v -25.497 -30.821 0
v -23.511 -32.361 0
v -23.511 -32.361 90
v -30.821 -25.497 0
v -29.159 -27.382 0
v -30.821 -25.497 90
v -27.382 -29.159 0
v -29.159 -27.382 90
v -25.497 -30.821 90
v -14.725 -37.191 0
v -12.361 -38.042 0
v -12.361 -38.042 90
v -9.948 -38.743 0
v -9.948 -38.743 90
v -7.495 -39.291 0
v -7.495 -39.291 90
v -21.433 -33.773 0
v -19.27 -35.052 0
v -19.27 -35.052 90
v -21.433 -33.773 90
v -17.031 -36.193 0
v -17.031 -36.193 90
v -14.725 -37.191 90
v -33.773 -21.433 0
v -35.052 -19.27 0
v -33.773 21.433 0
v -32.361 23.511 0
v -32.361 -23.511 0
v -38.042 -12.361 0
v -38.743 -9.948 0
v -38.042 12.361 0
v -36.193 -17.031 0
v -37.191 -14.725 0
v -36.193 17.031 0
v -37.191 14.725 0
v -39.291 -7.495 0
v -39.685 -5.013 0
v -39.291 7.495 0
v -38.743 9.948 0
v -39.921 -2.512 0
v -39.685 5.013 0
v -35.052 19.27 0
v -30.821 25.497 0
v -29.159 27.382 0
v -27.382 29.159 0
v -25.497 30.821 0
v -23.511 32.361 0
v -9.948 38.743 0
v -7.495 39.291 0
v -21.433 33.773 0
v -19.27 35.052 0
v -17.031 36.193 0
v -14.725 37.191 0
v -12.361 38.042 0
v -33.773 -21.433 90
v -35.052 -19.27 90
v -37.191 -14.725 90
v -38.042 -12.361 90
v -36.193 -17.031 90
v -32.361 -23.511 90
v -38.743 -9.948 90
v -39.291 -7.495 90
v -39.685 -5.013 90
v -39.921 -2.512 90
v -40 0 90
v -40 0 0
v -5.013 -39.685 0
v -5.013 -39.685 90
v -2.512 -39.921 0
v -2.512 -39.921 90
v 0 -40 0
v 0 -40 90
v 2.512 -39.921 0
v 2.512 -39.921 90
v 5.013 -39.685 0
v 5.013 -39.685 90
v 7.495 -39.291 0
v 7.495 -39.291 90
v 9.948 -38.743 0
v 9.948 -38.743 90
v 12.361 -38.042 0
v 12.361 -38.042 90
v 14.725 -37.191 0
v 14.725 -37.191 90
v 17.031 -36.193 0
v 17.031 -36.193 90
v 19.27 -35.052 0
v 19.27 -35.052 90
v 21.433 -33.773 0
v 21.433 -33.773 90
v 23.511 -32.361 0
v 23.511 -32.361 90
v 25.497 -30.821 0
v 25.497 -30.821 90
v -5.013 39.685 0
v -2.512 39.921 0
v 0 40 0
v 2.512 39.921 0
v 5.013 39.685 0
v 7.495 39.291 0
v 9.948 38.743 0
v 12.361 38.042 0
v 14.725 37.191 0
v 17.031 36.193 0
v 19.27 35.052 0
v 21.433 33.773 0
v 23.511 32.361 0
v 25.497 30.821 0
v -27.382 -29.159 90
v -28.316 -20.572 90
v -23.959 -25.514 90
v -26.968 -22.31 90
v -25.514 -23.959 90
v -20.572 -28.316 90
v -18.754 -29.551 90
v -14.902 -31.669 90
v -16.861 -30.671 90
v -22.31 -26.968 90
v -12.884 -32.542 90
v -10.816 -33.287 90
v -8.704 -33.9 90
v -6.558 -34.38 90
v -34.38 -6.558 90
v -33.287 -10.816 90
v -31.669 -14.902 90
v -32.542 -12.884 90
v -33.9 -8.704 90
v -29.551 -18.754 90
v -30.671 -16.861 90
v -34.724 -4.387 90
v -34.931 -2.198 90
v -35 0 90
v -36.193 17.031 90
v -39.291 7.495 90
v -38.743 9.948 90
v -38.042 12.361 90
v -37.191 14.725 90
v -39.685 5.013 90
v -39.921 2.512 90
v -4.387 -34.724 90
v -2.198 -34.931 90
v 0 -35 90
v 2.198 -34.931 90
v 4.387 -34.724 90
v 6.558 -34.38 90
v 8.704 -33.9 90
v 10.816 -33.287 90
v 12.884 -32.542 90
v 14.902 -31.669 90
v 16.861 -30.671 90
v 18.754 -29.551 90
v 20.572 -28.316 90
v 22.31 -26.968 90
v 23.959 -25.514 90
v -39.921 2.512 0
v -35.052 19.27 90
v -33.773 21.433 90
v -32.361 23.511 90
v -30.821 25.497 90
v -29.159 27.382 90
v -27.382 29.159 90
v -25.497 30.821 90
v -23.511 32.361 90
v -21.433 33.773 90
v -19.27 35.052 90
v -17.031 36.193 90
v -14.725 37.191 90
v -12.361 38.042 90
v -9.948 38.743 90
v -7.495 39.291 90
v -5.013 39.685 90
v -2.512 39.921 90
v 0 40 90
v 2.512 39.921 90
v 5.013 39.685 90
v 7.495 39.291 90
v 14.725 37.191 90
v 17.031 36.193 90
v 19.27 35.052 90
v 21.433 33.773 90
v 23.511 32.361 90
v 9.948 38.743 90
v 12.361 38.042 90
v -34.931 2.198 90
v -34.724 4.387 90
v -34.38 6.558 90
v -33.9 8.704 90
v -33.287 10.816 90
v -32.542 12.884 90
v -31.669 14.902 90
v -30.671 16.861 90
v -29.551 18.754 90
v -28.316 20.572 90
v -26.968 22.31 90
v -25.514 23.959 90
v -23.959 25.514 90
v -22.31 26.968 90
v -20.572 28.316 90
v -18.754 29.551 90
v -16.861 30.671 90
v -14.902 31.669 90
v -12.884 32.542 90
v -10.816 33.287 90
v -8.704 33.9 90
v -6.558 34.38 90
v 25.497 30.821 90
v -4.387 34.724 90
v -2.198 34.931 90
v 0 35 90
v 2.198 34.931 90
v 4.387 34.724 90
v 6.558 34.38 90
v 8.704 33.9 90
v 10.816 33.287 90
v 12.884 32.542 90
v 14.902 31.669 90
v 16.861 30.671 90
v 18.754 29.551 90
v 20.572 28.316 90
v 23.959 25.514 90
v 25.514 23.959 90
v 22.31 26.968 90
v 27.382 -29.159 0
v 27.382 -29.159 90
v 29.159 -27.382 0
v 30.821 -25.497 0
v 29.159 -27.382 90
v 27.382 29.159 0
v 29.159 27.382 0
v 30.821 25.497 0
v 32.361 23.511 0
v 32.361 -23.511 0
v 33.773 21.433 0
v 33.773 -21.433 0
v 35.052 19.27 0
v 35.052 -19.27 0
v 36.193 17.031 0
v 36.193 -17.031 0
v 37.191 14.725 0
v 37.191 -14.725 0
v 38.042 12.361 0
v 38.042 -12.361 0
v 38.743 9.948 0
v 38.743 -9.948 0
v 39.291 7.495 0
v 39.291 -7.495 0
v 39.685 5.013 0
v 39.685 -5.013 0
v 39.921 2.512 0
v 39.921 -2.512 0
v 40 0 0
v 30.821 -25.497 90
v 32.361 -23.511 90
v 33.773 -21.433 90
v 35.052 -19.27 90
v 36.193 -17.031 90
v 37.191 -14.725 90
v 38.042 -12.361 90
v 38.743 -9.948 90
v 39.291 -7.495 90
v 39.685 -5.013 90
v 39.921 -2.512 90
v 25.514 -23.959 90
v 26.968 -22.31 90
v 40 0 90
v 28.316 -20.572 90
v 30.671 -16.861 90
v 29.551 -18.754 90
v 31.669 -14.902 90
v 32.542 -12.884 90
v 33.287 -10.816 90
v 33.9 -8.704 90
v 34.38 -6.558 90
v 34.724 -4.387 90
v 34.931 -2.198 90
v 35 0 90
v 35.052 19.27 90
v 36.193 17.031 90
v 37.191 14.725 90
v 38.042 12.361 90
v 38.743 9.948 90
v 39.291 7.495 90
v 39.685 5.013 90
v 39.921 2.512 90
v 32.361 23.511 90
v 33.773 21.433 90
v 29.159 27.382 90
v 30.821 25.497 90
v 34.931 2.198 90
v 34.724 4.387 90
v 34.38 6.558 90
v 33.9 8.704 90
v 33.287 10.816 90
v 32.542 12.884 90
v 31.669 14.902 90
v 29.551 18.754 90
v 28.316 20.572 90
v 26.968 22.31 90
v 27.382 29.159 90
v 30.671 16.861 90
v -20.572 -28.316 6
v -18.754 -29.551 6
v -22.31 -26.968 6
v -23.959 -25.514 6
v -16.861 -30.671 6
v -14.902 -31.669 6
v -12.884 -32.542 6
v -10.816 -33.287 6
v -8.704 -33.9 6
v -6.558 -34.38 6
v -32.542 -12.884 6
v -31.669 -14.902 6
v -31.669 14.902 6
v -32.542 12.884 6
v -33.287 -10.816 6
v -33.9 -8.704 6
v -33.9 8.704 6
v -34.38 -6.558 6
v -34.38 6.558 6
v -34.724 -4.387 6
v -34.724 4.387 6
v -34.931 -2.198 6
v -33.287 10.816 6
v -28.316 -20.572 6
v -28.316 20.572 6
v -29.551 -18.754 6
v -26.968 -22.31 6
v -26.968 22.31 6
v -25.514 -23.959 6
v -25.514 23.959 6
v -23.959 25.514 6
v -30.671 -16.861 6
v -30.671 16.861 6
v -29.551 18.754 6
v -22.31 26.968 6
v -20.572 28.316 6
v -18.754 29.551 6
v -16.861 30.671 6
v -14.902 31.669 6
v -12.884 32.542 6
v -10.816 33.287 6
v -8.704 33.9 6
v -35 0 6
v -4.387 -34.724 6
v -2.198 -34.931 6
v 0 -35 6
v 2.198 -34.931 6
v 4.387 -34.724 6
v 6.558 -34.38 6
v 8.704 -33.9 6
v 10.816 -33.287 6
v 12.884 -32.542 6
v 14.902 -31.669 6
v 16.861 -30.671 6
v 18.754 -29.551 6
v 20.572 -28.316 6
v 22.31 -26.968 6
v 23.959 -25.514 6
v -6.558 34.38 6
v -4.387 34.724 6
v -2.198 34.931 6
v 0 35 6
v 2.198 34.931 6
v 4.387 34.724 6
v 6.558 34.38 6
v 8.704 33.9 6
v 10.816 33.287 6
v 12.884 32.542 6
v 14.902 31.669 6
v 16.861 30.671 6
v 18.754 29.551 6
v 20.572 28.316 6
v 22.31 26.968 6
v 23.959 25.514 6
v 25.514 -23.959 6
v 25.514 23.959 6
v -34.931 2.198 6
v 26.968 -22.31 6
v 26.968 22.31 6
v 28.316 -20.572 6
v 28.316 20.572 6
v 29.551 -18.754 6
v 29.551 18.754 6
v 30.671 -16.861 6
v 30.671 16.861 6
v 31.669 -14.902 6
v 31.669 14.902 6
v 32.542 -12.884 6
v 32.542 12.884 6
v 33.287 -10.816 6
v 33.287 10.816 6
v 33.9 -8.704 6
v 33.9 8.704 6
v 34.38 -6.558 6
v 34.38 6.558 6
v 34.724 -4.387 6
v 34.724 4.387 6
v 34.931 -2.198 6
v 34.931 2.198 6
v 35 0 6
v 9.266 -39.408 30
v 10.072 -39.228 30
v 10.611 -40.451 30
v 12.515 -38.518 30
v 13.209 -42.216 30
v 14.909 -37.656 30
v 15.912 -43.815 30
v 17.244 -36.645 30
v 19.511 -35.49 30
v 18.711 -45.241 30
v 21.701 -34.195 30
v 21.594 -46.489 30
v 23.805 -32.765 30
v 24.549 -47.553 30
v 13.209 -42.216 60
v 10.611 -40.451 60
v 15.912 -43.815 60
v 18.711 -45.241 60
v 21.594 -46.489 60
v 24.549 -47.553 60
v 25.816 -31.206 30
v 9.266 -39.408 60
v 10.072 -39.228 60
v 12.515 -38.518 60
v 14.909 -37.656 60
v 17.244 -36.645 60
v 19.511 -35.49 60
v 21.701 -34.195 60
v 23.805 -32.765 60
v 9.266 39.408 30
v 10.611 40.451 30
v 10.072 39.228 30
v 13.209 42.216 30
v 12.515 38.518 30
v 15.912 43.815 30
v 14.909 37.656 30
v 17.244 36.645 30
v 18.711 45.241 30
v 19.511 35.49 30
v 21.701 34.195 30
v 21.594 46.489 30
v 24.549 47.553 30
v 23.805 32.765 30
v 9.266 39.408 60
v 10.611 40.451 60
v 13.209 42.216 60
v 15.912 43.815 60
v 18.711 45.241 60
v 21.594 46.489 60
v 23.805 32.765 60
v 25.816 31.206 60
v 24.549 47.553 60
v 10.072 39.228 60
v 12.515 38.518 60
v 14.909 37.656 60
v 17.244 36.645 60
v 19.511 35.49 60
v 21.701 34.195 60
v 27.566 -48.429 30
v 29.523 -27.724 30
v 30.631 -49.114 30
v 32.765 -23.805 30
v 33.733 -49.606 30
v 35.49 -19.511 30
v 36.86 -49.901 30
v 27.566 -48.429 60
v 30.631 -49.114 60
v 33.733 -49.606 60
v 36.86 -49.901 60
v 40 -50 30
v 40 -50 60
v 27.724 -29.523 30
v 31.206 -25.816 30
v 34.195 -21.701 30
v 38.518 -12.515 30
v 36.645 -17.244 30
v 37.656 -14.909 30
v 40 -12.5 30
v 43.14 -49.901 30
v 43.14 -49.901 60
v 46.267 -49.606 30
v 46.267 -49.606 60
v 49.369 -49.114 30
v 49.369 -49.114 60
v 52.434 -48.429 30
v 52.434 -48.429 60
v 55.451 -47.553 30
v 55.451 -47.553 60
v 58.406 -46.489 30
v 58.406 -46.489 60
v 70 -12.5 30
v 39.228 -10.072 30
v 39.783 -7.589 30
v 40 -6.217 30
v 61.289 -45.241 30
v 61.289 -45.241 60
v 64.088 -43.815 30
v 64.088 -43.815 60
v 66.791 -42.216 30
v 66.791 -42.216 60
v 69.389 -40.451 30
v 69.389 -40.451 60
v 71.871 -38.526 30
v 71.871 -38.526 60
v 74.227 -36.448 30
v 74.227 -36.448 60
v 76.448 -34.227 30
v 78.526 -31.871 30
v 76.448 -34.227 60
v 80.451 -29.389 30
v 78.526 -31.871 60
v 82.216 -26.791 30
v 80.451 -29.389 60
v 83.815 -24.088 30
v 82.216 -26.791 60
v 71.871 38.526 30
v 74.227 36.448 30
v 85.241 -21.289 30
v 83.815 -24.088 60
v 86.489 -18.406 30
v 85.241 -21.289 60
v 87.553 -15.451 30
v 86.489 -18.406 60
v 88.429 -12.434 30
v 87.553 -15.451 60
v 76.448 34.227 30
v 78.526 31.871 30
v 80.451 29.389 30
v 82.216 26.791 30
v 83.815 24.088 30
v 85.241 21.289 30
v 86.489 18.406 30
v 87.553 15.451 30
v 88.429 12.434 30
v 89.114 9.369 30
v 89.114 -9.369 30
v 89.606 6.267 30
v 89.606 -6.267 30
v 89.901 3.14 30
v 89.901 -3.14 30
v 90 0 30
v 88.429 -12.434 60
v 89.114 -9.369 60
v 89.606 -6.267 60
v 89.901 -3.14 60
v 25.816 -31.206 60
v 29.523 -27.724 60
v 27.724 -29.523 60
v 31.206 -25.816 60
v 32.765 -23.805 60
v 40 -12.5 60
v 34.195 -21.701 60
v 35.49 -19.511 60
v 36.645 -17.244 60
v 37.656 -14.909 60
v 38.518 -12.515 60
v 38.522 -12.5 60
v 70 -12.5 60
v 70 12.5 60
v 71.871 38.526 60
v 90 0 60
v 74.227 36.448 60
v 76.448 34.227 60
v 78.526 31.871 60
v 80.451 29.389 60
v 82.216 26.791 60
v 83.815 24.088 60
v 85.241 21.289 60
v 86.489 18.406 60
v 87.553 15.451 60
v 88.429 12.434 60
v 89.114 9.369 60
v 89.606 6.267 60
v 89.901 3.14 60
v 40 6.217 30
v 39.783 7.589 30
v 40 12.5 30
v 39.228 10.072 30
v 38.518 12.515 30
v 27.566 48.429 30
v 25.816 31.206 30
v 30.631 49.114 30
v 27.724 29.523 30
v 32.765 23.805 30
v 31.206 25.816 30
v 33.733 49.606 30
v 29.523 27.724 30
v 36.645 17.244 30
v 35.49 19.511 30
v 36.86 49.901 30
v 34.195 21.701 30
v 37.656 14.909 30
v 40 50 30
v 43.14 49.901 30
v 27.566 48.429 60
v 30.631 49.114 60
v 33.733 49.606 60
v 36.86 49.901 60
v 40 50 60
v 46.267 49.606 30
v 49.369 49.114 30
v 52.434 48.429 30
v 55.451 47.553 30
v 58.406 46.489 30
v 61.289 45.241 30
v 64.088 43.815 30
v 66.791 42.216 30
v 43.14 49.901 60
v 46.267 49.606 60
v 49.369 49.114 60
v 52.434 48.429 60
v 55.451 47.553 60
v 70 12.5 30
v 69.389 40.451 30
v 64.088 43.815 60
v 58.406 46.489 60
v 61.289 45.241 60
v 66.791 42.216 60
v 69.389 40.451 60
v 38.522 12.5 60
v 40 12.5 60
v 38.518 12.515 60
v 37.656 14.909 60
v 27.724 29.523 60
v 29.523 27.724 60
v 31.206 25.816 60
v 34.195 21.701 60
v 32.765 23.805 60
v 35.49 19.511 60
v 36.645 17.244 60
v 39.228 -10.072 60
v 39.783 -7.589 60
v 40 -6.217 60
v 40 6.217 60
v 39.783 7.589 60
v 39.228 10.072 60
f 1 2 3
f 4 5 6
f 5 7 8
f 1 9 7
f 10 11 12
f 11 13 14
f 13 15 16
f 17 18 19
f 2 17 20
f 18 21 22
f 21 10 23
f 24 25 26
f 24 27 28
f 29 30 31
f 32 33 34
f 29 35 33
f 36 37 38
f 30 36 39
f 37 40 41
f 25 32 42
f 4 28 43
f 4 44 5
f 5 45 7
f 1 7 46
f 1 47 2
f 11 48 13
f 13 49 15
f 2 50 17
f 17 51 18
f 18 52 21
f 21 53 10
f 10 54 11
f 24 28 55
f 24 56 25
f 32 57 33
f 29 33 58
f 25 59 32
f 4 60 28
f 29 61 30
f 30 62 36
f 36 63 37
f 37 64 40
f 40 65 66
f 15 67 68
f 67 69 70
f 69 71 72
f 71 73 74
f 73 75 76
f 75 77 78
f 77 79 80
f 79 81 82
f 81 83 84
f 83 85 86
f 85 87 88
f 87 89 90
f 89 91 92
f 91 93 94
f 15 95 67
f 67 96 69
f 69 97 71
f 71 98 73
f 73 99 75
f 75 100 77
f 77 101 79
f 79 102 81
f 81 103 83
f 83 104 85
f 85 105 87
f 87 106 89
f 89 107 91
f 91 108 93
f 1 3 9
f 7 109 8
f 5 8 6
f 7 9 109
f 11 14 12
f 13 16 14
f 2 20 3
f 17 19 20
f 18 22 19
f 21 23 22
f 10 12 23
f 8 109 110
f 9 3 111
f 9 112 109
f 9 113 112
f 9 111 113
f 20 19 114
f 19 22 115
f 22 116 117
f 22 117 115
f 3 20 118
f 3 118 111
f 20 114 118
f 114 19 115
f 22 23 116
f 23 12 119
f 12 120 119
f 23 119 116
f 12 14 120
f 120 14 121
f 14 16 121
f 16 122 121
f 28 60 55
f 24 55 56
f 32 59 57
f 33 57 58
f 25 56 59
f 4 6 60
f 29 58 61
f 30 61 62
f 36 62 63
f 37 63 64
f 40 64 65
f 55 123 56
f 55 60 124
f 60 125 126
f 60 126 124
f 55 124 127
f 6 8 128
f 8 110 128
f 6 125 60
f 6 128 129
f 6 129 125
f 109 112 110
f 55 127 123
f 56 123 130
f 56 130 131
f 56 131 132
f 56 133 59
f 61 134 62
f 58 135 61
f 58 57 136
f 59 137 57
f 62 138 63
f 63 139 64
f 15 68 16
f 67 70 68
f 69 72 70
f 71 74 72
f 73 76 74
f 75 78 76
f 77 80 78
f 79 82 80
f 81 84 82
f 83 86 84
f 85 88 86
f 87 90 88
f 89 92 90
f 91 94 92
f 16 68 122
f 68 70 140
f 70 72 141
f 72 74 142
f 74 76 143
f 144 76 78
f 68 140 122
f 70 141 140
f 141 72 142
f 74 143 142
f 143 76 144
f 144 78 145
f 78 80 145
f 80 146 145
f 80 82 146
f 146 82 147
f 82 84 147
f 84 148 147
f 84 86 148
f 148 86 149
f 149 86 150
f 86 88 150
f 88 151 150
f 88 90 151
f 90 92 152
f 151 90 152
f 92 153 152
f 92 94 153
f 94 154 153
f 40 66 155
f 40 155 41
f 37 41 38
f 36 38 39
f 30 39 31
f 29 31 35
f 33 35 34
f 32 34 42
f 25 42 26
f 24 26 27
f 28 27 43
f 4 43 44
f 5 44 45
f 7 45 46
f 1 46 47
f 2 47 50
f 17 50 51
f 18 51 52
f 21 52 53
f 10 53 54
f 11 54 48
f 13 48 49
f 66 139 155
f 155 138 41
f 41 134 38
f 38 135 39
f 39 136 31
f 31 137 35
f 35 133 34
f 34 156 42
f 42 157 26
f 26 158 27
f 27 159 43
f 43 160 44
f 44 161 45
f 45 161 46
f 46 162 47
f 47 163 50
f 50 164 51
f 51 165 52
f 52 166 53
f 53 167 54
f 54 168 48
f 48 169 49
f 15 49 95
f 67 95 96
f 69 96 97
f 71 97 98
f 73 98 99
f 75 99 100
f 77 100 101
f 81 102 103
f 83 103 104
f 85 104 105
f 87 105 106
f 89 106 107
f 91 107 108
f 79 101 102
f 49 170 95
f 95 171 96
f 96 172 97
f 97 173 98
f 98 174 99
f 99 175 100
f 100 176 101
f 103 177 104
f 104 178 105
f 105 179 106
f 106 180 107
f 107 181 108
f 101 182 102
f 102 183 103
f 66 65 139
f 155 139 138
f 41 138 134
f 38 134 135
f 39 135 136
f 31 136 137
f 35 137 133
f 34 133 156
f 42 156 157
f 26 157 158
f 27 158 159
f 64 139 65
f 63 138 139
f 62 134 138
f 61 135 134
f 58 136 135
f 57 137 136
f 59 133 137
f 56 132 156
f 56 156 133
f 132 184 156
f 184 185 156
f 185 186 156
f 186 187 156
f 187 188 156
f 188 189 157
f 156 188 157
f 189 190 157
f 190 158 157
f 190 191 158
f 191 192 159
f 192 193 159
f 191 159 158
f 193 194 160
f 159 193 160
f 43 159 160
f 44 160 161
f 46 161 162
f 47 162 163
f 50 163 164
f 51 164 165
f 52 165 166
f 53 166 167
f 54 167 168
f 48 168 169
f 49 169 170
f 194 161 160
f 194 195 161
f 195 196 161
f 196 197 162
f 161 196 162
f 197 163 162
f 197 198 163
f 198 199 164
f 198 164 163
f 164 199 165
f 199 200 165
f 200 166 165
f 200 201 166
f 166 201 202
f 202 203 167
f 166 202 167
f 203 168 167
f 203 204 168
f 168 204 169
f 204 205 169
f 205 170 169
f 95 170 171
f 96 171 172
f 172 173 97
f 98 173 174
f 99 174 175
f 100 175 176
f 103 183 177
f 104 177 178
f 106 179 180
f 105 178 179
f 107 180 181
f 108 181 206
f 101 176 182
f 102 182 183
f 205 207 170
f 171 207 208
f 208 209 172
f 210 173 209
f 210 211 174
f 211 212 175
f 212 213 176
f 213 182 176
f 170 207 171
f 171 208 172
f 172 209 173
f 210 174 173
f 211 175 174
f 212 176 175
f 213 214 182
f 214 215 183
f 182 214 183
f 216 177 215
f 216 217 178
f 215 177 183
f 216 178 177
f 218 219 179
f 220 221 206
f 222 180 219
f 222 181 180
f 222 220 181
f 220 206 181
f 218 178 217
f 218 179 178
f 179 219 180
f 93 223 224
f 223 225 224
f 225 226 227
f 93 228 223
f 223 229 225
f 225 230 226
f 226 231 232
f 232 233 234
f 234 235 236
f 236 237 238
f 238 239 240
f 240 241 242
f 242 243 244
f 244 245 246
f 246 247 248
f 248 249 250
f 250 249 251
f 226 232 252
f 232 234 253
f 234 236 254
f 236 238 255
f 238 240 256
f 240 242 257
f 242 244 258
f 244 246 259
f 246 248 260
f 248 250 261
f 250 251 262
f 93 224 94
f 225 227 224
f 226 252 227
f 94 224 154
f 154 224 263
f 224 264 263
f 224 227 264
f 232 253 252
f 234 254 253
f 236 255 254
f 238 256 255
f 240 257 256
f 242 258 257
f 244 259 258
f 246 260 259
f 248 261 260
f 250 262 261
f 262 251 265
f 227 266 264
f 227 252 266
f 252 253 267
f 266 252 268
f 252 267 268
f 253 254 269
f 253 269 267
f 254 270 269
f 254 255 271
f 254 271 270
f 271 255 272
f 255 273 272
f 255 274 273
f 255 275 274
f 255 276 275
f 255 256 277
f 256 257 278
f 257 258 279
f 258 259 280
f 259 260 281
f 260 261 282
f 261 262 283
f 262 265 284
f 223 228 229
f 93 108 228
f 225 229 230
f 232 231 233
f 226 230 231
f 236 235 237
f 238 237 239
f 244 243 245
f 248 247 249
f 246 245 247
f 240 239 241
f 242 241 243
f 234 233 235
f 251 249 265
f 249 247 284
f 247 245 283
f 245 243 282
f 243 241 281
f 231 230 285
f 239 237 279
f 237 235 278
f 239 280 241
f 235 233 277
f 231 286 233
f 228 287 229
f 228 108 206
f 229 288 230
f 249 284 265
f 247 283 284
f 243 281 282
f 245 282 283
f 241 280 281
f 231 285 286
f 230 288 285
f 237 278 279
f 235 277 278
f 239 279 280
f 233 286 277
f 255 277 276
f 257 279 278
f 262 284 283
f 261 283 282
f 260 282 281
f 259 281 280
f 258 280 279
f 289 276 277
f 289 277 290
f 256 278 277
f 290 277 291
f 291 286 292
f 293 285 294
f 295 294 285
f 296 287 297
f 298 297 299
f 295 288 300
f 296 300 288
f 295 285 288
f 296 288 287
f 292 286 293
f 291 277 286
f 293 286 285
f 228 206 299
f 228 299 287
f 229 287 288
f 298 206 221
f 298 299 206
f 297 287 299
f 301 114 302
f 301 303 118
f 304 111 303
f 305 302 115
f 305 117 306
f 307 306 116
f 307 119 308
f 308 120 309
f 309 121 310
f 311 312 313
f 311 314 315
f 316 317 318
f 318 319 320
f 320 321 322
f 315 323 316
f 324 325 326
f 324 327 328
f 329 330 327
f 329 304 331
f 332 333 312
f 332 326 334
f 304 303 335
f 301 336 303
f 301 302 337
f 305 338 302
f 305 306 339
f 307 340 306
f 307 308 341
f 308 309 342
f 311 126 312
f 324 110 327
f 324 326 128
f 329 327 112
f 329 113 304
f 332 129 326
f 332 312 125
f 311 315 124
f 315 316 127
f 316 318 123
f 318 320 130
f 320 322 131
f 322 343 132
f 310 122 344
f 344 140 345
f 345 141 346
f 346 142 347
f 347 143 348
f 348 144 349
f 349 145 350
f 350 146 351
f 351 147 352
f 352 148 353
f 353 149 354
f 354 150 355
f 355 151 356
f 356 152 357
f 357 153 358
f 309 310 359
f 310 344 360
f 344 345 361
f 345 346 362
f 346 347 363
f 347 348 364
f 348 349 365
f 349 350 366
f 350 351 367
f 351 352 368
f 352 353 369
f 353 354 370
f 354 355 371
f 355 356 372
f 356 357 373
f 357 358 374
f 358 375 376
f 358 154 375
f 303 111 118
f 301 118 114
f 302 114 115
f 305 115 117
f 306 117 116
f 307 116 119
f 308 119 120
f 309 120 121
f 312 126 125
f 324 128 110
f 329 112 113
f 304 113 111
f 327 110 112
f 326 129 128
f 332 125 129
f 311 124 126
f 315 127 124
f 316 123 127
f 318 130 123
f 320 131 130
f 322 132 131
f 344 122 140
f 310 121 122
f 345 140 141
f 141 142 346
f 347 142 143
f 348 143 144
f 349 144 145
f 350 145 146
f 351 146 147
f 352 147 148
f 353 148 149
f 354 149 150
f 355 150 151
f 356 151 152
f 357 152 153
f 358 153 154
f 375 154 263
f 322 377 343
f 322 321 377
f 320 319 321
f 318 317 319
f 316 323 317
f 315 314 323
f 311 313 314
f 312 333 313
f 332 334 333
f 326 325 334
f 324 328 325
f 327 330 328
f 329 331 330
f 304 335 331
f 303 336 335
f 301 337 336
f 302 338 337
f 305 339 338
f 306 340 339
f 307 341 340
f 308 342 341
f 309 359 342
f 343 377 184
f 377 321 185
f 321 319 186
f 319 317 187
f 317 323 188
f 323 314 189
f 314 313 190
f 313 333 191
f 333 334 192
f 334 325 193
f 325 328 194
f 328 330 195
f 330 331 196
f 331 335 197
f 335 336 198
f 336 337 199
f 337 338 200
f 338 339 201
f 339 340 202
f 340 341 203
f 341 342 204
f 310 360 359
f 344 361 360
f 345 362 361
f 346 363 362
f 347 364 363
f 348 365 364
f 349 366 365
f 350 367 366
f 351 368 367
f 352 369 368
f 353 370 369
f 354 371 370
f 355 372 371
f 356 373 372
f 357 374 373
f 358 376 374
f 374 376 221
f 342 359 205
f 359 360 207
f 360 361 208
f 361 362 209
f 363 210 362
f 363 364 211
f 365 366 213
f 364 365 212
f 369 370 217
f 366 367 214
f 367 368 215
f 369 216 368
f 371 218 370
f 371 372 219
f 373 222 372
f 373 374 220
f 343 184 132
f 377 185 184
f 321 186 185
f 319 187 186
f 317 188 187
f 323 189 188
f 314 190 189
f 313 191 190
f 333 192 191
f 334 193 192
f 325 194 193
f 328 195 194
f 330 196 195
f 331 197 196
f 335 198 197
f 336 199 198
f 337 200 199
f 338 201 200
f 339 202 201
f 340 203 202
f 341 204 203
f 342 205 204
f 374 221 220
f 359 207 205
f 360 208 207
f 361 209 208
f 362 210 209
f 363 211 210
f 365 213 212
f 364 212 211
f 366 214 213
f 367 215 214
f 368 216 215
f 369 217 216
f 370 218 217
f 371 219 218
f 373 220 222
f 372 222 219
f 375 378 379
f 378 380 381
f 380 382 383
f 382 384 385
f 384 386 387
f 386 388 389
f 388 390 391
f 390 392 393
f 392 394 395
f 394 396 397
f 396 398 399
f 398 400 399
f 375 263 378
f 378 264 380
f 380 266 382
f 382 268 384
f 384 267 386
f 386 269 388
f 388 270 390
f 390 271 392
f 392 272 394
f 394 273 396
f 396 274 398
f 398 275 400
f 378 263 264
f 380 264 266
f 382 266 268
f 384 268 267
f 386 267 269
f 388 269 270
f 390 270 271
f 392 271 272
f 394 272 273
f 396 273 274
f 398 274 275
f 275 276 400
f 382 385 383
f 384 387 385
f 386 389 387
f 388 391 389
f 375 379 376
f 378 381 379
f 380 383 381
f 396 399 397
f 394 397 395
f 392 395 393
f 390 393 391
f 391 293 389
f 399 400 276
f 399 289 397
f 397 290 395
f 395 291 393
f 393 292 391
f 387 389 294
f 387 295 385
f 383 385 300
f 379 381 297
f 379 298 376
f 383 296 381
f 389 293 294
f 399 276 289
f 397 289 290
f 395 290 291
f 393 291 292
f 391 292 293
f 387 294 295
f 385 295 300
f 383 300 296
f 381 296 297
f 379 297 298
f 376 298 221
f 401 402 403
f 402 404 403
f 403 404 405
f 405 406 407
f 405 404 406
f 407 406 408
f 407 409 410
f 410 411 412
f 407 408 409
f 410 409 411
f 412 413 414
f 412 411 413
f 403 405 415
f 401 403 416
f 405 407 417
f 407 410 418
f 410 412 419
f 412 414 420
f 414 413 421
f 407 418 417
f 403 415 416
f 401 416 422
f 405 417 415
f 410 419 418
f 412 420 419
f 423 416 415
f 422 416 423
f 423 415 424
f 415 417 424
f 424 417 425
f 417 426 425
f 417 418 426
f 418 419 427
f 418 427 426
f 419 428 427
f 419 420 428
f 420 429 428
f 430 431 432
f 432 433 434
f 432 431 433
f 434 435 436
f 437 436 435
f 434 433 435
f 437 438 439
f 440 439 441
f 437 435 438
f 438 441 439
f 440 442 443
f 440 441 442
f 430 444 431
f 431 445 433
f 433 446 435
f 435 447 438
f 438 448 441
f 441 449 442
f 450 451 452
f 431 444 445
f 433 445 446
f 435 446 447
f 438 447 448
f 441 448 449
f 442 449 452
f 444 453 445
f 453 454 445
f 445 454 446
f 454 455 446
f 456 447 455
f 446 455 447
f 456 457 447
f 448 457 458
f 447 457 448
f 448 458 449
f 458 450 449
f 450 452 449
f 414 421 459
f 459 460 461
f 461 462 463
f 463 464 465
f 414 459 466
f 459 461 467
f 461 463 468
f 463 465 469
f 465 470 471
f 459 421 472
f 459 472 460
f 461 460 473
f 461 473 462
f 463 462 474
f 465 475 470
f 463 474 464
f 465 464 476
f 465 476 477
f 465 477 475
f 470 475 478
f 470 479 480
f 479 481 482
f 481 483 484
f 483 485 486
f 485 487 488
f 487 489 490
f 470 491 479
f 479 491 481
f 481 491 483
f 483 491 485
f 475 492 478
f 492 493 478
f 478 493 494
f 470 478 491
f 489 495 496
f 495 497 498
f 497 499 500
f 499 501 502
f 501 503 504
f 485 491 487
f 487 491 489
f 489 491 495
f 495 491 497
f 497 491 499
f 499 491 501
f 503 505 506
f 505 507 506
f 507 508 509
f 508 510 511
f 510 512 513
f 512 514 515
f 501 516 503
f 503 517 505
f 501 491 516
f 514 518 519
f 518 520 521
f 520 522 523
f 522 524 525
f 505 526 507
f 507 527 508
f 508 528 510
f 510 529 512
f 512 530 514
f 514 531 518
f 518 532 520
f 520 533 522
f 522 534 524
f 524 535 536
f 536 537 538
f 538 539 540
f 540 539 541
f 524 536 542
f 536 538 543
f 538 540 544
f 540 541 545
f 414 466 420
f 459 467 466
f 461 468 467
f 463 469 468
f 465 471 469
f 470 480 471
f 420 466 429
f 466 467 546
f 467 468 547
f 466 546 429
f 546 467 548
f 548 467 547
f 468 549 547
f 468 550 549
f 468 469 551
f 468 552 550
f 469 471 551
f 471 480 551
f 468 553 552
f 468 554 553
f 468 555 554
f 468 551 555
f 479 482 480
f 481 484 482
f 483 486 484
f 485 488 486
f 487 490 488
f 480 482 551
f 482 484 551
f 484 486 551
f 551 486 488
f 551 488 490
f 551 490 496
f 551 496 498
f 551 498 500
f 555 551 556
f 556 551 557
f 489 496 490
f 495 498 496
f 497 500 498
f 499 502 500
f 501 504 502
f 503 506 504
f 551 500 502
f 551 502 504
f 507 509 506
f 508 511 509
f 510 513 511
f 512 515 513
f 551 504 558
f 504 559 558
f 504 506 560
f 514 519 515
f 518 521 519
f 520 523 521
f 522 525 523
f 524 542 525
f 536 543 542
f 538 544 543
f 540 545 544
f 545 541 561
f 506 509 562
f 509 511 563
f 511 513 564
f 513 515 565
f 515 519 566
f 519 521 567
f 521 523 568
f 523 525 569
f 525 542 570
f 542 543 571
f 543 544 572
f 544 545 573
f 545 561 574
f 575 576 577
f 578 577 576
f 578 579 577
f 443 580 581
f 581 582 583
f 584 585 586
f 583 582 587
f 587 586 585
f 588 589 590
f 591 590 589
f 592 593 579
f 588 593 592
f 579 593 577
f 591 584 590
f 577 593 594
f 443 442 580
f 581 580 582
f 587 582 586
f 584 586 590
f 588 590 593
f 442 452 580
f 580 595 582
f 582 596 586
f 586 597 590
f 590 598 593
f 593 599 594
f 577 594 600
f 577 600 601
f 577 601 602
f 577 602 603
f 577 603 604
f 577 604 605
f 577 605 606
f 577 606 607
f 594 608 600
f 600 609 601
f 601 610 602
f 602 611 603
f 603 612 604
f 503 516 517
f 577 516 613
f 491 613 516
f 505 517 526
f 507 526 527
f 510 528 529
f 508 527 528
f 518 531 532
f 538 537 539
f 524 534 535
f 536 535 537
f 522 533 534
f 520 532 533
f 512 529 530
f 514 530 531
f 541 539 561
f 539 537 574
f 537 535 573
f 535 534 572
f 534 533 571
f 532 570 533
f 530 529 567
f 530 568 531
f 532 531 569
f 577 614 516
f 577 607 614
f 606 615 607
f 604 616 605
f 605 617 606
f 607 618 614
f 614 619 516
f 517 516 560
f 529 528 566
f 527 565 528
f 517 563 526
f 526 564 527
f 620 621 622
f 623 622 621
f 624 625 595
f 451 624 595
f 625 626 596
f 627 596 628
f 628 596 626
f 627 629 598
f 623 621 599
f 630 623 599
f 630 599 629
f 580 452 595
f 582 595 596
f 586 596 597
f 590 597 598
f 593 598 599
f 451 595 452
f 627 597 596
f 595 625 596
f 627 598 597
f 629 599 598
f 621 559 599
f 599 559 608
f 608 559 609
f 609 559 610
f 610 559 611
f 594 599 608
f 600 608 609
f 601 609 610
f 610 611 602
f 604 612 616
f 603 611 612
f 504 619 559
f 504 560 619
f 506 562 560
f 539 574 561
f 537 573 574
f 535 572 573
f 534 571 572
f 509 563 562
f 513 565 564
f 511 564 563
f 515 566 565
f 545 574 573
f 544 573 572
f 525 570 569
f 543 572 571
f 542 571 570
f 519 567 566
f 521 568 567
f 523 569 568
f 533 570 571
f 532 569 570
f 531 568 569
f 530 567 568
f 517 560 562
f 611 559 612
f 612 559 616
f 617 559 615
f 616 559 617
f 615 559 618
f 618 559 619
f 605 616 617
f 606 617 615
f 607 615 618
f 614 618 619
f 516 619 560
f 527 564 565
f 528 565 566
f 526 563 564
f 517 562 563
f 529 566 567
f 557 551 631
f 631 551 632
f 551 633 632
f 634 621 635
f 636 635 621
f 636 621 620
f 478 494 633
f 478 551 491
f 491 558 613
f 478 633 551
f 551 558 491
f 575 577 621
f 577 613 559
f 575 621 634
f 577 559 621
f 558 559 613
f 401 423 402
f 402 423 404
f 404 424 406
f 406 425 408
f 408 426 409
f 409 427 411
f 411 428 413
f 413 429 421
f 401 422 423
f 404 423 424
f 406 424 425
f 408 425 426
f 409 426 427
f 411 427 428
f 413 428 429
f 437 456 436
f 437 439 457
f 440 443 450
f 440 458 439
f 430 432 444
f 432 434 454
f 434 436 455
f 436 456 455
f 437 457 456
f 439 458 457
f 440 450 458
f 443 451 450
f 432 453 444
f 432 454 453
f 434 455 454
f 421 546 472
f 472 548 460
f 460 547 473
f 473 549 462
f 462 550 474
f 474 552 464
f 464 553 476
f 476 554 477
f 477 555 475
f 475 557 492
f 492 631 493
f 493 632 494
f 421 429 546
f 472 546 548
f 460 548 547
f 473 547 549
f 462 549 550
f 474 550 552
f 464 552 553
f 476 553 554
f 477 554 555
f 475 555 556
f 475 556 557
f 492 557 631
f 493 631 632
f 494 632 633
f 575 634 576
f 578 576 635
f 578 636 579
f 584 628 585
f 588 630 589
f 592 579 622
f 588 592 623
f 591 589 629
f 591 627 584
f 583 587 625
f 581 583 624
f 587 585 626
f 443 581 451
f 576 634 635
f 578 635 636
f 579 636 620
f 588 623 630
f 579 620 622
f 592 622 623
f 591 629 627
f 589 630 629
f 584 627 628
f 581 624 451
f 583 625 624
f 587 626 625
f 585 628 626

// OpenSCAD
// マグカップ本体
module mug() {
    difference() {
        // 外側円筒：外径80mm(半径40mm)、高さ90mm
        cylinder(h = 90, r = 40, center = false, $fn = 100);
        
        // 内側の空洞：底面6mm残す
        translate([0, 0, 6]) {
            cylinder(h = 90, r = 35, center = false, $fn = 100);
        }
    }
}

// D字形取手
module handle() {
    // 取手の内側寸法：高さ30mm、幅25mm
    handle_inner_height = 30;
    handle_inner_width = 25;
    
    // 取手開始高さ(マグの中央付近)
    handle_z = 30;  // マグ高さ90mmの中央
    
    // 取手の外側寸法
    handle_outer_depth = 28;  // 本体から外へ
    handle_outer_r = 50;  // 外側の曲率半径
    
    difference() {
        union() {
            // 本体に接続する直線部分（内側）
            translate([32, -handle_inner_width/2, handle_z]) {
                cube([10, handle_inner_width, handle_inner_height]);
            }
            
            // 外側の半円形部分
            translate([40, 0, handle_z + handle_inner_height/2]) {
                rotate([0, 0, 0]) {
                    difference() {
                        // 半円柱
                        intersection() {
                            cylinder(h = handle_inner_height, r = handle_outer_r, center = true, $fn = 100);
                            translate([0, 0, 0]) {
                                cube([200, 100, handle_inner_height + 1], center = true);
                            }
                        }
                    }
                }
            }
        }
        
        // 内側をくり抜く：D字形状の内側空間
        translate([40, -handle_inner_width/2, handle_z - 0.5]) {
            cube([handle_outer_depth + 2, handle_inner_width, handle_inner_height + 1]);
        }
        
        // マグ本体との干渉部分を削除（本体内部を除去）
        translate([0, 0, handle_z - 1]) {
            cylinder(h = handle_inner_height + 2, r = 40.5, center = false, $fn = 100);
        }
    }
}

// 完成品
union() {
    mug();
    handle();
}
